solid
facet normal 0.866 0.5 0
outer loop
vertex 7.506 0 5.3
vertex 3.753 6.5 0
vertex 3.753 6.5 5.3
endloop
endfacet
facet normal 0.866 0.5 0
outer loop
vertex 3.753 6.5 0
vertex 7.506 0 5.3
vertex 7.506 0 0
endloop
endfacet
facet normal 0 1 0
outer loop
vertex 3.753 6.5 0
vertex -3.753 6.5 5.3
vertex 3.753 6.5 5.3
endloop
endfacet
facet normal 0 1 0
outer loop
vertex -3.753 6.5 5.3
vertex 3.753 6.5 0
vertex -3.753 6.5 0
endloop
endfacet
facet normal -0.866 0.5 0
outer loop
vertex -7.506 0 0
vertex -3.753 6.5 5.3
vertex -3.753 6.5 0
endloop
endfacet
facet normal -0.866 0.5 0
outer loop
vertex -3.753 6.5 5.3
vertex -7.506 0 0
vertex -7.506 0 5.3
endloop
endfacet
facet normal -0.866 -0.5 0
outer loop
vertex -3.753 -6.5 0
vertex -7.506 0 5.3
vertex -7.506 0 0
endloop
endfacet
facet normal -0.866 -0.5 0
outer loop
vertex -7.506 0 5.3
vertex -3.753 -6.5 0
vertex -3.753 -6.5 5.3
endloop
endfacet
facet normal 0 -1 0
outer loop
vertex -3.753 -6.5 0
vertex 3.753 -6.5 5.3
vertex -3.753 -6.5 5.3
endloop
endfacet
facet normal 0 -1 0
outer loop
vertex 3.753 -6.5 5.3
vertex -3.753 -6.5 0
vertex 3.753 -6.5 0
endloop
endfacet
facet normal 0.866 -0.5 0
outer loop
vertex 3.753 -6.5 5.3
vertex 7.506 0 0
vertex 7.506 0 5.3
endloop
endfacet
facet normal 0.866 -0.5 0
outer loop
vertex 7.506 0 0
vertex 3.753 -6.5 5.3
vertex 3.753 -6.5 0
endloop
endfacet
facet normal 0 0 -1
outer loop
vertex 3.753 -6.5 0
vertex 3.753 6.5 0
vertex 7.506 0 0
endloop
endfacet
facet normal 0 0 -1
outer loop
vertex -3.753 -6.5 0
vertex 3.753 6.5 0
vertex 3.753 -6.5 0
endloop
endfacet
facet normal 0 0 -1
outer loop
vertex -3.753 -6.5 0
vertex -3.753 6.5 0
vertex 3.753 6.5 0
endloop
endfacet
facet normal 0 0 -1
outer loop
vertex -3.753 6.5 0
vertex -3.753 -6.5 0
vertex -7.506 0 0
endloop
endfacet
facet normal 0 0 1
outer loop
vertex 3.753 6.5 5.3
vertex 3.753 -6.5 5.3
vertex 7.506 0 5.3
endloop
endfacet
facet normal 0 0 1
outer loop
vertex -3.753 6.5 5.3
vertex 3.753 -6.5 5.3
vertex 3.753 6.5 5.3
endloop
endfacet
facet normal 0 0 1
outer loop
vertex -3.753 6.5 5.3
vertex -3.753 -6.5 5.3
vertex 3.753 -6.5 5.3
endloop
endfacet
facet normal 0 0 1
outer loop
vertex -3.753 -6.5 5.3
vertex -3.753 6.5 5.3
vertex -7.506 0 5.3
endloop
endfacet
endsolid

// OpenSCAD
// M8 Hex Bolt (Simplified)

// Head: Hexagonal prism
// Across-flats (S) = 13mm. 
// The circumradius (r) for a hexagon is S / sqrt(3).
cylinder(h = 5.3, r = 13 / sqrt(3), $fn = 6);

// Shank: Circular cylinder
// Diameter = 8mm (r = 4mm), Length = 30mm
cylinder(h = -30, r = 4, $fn = 64);
